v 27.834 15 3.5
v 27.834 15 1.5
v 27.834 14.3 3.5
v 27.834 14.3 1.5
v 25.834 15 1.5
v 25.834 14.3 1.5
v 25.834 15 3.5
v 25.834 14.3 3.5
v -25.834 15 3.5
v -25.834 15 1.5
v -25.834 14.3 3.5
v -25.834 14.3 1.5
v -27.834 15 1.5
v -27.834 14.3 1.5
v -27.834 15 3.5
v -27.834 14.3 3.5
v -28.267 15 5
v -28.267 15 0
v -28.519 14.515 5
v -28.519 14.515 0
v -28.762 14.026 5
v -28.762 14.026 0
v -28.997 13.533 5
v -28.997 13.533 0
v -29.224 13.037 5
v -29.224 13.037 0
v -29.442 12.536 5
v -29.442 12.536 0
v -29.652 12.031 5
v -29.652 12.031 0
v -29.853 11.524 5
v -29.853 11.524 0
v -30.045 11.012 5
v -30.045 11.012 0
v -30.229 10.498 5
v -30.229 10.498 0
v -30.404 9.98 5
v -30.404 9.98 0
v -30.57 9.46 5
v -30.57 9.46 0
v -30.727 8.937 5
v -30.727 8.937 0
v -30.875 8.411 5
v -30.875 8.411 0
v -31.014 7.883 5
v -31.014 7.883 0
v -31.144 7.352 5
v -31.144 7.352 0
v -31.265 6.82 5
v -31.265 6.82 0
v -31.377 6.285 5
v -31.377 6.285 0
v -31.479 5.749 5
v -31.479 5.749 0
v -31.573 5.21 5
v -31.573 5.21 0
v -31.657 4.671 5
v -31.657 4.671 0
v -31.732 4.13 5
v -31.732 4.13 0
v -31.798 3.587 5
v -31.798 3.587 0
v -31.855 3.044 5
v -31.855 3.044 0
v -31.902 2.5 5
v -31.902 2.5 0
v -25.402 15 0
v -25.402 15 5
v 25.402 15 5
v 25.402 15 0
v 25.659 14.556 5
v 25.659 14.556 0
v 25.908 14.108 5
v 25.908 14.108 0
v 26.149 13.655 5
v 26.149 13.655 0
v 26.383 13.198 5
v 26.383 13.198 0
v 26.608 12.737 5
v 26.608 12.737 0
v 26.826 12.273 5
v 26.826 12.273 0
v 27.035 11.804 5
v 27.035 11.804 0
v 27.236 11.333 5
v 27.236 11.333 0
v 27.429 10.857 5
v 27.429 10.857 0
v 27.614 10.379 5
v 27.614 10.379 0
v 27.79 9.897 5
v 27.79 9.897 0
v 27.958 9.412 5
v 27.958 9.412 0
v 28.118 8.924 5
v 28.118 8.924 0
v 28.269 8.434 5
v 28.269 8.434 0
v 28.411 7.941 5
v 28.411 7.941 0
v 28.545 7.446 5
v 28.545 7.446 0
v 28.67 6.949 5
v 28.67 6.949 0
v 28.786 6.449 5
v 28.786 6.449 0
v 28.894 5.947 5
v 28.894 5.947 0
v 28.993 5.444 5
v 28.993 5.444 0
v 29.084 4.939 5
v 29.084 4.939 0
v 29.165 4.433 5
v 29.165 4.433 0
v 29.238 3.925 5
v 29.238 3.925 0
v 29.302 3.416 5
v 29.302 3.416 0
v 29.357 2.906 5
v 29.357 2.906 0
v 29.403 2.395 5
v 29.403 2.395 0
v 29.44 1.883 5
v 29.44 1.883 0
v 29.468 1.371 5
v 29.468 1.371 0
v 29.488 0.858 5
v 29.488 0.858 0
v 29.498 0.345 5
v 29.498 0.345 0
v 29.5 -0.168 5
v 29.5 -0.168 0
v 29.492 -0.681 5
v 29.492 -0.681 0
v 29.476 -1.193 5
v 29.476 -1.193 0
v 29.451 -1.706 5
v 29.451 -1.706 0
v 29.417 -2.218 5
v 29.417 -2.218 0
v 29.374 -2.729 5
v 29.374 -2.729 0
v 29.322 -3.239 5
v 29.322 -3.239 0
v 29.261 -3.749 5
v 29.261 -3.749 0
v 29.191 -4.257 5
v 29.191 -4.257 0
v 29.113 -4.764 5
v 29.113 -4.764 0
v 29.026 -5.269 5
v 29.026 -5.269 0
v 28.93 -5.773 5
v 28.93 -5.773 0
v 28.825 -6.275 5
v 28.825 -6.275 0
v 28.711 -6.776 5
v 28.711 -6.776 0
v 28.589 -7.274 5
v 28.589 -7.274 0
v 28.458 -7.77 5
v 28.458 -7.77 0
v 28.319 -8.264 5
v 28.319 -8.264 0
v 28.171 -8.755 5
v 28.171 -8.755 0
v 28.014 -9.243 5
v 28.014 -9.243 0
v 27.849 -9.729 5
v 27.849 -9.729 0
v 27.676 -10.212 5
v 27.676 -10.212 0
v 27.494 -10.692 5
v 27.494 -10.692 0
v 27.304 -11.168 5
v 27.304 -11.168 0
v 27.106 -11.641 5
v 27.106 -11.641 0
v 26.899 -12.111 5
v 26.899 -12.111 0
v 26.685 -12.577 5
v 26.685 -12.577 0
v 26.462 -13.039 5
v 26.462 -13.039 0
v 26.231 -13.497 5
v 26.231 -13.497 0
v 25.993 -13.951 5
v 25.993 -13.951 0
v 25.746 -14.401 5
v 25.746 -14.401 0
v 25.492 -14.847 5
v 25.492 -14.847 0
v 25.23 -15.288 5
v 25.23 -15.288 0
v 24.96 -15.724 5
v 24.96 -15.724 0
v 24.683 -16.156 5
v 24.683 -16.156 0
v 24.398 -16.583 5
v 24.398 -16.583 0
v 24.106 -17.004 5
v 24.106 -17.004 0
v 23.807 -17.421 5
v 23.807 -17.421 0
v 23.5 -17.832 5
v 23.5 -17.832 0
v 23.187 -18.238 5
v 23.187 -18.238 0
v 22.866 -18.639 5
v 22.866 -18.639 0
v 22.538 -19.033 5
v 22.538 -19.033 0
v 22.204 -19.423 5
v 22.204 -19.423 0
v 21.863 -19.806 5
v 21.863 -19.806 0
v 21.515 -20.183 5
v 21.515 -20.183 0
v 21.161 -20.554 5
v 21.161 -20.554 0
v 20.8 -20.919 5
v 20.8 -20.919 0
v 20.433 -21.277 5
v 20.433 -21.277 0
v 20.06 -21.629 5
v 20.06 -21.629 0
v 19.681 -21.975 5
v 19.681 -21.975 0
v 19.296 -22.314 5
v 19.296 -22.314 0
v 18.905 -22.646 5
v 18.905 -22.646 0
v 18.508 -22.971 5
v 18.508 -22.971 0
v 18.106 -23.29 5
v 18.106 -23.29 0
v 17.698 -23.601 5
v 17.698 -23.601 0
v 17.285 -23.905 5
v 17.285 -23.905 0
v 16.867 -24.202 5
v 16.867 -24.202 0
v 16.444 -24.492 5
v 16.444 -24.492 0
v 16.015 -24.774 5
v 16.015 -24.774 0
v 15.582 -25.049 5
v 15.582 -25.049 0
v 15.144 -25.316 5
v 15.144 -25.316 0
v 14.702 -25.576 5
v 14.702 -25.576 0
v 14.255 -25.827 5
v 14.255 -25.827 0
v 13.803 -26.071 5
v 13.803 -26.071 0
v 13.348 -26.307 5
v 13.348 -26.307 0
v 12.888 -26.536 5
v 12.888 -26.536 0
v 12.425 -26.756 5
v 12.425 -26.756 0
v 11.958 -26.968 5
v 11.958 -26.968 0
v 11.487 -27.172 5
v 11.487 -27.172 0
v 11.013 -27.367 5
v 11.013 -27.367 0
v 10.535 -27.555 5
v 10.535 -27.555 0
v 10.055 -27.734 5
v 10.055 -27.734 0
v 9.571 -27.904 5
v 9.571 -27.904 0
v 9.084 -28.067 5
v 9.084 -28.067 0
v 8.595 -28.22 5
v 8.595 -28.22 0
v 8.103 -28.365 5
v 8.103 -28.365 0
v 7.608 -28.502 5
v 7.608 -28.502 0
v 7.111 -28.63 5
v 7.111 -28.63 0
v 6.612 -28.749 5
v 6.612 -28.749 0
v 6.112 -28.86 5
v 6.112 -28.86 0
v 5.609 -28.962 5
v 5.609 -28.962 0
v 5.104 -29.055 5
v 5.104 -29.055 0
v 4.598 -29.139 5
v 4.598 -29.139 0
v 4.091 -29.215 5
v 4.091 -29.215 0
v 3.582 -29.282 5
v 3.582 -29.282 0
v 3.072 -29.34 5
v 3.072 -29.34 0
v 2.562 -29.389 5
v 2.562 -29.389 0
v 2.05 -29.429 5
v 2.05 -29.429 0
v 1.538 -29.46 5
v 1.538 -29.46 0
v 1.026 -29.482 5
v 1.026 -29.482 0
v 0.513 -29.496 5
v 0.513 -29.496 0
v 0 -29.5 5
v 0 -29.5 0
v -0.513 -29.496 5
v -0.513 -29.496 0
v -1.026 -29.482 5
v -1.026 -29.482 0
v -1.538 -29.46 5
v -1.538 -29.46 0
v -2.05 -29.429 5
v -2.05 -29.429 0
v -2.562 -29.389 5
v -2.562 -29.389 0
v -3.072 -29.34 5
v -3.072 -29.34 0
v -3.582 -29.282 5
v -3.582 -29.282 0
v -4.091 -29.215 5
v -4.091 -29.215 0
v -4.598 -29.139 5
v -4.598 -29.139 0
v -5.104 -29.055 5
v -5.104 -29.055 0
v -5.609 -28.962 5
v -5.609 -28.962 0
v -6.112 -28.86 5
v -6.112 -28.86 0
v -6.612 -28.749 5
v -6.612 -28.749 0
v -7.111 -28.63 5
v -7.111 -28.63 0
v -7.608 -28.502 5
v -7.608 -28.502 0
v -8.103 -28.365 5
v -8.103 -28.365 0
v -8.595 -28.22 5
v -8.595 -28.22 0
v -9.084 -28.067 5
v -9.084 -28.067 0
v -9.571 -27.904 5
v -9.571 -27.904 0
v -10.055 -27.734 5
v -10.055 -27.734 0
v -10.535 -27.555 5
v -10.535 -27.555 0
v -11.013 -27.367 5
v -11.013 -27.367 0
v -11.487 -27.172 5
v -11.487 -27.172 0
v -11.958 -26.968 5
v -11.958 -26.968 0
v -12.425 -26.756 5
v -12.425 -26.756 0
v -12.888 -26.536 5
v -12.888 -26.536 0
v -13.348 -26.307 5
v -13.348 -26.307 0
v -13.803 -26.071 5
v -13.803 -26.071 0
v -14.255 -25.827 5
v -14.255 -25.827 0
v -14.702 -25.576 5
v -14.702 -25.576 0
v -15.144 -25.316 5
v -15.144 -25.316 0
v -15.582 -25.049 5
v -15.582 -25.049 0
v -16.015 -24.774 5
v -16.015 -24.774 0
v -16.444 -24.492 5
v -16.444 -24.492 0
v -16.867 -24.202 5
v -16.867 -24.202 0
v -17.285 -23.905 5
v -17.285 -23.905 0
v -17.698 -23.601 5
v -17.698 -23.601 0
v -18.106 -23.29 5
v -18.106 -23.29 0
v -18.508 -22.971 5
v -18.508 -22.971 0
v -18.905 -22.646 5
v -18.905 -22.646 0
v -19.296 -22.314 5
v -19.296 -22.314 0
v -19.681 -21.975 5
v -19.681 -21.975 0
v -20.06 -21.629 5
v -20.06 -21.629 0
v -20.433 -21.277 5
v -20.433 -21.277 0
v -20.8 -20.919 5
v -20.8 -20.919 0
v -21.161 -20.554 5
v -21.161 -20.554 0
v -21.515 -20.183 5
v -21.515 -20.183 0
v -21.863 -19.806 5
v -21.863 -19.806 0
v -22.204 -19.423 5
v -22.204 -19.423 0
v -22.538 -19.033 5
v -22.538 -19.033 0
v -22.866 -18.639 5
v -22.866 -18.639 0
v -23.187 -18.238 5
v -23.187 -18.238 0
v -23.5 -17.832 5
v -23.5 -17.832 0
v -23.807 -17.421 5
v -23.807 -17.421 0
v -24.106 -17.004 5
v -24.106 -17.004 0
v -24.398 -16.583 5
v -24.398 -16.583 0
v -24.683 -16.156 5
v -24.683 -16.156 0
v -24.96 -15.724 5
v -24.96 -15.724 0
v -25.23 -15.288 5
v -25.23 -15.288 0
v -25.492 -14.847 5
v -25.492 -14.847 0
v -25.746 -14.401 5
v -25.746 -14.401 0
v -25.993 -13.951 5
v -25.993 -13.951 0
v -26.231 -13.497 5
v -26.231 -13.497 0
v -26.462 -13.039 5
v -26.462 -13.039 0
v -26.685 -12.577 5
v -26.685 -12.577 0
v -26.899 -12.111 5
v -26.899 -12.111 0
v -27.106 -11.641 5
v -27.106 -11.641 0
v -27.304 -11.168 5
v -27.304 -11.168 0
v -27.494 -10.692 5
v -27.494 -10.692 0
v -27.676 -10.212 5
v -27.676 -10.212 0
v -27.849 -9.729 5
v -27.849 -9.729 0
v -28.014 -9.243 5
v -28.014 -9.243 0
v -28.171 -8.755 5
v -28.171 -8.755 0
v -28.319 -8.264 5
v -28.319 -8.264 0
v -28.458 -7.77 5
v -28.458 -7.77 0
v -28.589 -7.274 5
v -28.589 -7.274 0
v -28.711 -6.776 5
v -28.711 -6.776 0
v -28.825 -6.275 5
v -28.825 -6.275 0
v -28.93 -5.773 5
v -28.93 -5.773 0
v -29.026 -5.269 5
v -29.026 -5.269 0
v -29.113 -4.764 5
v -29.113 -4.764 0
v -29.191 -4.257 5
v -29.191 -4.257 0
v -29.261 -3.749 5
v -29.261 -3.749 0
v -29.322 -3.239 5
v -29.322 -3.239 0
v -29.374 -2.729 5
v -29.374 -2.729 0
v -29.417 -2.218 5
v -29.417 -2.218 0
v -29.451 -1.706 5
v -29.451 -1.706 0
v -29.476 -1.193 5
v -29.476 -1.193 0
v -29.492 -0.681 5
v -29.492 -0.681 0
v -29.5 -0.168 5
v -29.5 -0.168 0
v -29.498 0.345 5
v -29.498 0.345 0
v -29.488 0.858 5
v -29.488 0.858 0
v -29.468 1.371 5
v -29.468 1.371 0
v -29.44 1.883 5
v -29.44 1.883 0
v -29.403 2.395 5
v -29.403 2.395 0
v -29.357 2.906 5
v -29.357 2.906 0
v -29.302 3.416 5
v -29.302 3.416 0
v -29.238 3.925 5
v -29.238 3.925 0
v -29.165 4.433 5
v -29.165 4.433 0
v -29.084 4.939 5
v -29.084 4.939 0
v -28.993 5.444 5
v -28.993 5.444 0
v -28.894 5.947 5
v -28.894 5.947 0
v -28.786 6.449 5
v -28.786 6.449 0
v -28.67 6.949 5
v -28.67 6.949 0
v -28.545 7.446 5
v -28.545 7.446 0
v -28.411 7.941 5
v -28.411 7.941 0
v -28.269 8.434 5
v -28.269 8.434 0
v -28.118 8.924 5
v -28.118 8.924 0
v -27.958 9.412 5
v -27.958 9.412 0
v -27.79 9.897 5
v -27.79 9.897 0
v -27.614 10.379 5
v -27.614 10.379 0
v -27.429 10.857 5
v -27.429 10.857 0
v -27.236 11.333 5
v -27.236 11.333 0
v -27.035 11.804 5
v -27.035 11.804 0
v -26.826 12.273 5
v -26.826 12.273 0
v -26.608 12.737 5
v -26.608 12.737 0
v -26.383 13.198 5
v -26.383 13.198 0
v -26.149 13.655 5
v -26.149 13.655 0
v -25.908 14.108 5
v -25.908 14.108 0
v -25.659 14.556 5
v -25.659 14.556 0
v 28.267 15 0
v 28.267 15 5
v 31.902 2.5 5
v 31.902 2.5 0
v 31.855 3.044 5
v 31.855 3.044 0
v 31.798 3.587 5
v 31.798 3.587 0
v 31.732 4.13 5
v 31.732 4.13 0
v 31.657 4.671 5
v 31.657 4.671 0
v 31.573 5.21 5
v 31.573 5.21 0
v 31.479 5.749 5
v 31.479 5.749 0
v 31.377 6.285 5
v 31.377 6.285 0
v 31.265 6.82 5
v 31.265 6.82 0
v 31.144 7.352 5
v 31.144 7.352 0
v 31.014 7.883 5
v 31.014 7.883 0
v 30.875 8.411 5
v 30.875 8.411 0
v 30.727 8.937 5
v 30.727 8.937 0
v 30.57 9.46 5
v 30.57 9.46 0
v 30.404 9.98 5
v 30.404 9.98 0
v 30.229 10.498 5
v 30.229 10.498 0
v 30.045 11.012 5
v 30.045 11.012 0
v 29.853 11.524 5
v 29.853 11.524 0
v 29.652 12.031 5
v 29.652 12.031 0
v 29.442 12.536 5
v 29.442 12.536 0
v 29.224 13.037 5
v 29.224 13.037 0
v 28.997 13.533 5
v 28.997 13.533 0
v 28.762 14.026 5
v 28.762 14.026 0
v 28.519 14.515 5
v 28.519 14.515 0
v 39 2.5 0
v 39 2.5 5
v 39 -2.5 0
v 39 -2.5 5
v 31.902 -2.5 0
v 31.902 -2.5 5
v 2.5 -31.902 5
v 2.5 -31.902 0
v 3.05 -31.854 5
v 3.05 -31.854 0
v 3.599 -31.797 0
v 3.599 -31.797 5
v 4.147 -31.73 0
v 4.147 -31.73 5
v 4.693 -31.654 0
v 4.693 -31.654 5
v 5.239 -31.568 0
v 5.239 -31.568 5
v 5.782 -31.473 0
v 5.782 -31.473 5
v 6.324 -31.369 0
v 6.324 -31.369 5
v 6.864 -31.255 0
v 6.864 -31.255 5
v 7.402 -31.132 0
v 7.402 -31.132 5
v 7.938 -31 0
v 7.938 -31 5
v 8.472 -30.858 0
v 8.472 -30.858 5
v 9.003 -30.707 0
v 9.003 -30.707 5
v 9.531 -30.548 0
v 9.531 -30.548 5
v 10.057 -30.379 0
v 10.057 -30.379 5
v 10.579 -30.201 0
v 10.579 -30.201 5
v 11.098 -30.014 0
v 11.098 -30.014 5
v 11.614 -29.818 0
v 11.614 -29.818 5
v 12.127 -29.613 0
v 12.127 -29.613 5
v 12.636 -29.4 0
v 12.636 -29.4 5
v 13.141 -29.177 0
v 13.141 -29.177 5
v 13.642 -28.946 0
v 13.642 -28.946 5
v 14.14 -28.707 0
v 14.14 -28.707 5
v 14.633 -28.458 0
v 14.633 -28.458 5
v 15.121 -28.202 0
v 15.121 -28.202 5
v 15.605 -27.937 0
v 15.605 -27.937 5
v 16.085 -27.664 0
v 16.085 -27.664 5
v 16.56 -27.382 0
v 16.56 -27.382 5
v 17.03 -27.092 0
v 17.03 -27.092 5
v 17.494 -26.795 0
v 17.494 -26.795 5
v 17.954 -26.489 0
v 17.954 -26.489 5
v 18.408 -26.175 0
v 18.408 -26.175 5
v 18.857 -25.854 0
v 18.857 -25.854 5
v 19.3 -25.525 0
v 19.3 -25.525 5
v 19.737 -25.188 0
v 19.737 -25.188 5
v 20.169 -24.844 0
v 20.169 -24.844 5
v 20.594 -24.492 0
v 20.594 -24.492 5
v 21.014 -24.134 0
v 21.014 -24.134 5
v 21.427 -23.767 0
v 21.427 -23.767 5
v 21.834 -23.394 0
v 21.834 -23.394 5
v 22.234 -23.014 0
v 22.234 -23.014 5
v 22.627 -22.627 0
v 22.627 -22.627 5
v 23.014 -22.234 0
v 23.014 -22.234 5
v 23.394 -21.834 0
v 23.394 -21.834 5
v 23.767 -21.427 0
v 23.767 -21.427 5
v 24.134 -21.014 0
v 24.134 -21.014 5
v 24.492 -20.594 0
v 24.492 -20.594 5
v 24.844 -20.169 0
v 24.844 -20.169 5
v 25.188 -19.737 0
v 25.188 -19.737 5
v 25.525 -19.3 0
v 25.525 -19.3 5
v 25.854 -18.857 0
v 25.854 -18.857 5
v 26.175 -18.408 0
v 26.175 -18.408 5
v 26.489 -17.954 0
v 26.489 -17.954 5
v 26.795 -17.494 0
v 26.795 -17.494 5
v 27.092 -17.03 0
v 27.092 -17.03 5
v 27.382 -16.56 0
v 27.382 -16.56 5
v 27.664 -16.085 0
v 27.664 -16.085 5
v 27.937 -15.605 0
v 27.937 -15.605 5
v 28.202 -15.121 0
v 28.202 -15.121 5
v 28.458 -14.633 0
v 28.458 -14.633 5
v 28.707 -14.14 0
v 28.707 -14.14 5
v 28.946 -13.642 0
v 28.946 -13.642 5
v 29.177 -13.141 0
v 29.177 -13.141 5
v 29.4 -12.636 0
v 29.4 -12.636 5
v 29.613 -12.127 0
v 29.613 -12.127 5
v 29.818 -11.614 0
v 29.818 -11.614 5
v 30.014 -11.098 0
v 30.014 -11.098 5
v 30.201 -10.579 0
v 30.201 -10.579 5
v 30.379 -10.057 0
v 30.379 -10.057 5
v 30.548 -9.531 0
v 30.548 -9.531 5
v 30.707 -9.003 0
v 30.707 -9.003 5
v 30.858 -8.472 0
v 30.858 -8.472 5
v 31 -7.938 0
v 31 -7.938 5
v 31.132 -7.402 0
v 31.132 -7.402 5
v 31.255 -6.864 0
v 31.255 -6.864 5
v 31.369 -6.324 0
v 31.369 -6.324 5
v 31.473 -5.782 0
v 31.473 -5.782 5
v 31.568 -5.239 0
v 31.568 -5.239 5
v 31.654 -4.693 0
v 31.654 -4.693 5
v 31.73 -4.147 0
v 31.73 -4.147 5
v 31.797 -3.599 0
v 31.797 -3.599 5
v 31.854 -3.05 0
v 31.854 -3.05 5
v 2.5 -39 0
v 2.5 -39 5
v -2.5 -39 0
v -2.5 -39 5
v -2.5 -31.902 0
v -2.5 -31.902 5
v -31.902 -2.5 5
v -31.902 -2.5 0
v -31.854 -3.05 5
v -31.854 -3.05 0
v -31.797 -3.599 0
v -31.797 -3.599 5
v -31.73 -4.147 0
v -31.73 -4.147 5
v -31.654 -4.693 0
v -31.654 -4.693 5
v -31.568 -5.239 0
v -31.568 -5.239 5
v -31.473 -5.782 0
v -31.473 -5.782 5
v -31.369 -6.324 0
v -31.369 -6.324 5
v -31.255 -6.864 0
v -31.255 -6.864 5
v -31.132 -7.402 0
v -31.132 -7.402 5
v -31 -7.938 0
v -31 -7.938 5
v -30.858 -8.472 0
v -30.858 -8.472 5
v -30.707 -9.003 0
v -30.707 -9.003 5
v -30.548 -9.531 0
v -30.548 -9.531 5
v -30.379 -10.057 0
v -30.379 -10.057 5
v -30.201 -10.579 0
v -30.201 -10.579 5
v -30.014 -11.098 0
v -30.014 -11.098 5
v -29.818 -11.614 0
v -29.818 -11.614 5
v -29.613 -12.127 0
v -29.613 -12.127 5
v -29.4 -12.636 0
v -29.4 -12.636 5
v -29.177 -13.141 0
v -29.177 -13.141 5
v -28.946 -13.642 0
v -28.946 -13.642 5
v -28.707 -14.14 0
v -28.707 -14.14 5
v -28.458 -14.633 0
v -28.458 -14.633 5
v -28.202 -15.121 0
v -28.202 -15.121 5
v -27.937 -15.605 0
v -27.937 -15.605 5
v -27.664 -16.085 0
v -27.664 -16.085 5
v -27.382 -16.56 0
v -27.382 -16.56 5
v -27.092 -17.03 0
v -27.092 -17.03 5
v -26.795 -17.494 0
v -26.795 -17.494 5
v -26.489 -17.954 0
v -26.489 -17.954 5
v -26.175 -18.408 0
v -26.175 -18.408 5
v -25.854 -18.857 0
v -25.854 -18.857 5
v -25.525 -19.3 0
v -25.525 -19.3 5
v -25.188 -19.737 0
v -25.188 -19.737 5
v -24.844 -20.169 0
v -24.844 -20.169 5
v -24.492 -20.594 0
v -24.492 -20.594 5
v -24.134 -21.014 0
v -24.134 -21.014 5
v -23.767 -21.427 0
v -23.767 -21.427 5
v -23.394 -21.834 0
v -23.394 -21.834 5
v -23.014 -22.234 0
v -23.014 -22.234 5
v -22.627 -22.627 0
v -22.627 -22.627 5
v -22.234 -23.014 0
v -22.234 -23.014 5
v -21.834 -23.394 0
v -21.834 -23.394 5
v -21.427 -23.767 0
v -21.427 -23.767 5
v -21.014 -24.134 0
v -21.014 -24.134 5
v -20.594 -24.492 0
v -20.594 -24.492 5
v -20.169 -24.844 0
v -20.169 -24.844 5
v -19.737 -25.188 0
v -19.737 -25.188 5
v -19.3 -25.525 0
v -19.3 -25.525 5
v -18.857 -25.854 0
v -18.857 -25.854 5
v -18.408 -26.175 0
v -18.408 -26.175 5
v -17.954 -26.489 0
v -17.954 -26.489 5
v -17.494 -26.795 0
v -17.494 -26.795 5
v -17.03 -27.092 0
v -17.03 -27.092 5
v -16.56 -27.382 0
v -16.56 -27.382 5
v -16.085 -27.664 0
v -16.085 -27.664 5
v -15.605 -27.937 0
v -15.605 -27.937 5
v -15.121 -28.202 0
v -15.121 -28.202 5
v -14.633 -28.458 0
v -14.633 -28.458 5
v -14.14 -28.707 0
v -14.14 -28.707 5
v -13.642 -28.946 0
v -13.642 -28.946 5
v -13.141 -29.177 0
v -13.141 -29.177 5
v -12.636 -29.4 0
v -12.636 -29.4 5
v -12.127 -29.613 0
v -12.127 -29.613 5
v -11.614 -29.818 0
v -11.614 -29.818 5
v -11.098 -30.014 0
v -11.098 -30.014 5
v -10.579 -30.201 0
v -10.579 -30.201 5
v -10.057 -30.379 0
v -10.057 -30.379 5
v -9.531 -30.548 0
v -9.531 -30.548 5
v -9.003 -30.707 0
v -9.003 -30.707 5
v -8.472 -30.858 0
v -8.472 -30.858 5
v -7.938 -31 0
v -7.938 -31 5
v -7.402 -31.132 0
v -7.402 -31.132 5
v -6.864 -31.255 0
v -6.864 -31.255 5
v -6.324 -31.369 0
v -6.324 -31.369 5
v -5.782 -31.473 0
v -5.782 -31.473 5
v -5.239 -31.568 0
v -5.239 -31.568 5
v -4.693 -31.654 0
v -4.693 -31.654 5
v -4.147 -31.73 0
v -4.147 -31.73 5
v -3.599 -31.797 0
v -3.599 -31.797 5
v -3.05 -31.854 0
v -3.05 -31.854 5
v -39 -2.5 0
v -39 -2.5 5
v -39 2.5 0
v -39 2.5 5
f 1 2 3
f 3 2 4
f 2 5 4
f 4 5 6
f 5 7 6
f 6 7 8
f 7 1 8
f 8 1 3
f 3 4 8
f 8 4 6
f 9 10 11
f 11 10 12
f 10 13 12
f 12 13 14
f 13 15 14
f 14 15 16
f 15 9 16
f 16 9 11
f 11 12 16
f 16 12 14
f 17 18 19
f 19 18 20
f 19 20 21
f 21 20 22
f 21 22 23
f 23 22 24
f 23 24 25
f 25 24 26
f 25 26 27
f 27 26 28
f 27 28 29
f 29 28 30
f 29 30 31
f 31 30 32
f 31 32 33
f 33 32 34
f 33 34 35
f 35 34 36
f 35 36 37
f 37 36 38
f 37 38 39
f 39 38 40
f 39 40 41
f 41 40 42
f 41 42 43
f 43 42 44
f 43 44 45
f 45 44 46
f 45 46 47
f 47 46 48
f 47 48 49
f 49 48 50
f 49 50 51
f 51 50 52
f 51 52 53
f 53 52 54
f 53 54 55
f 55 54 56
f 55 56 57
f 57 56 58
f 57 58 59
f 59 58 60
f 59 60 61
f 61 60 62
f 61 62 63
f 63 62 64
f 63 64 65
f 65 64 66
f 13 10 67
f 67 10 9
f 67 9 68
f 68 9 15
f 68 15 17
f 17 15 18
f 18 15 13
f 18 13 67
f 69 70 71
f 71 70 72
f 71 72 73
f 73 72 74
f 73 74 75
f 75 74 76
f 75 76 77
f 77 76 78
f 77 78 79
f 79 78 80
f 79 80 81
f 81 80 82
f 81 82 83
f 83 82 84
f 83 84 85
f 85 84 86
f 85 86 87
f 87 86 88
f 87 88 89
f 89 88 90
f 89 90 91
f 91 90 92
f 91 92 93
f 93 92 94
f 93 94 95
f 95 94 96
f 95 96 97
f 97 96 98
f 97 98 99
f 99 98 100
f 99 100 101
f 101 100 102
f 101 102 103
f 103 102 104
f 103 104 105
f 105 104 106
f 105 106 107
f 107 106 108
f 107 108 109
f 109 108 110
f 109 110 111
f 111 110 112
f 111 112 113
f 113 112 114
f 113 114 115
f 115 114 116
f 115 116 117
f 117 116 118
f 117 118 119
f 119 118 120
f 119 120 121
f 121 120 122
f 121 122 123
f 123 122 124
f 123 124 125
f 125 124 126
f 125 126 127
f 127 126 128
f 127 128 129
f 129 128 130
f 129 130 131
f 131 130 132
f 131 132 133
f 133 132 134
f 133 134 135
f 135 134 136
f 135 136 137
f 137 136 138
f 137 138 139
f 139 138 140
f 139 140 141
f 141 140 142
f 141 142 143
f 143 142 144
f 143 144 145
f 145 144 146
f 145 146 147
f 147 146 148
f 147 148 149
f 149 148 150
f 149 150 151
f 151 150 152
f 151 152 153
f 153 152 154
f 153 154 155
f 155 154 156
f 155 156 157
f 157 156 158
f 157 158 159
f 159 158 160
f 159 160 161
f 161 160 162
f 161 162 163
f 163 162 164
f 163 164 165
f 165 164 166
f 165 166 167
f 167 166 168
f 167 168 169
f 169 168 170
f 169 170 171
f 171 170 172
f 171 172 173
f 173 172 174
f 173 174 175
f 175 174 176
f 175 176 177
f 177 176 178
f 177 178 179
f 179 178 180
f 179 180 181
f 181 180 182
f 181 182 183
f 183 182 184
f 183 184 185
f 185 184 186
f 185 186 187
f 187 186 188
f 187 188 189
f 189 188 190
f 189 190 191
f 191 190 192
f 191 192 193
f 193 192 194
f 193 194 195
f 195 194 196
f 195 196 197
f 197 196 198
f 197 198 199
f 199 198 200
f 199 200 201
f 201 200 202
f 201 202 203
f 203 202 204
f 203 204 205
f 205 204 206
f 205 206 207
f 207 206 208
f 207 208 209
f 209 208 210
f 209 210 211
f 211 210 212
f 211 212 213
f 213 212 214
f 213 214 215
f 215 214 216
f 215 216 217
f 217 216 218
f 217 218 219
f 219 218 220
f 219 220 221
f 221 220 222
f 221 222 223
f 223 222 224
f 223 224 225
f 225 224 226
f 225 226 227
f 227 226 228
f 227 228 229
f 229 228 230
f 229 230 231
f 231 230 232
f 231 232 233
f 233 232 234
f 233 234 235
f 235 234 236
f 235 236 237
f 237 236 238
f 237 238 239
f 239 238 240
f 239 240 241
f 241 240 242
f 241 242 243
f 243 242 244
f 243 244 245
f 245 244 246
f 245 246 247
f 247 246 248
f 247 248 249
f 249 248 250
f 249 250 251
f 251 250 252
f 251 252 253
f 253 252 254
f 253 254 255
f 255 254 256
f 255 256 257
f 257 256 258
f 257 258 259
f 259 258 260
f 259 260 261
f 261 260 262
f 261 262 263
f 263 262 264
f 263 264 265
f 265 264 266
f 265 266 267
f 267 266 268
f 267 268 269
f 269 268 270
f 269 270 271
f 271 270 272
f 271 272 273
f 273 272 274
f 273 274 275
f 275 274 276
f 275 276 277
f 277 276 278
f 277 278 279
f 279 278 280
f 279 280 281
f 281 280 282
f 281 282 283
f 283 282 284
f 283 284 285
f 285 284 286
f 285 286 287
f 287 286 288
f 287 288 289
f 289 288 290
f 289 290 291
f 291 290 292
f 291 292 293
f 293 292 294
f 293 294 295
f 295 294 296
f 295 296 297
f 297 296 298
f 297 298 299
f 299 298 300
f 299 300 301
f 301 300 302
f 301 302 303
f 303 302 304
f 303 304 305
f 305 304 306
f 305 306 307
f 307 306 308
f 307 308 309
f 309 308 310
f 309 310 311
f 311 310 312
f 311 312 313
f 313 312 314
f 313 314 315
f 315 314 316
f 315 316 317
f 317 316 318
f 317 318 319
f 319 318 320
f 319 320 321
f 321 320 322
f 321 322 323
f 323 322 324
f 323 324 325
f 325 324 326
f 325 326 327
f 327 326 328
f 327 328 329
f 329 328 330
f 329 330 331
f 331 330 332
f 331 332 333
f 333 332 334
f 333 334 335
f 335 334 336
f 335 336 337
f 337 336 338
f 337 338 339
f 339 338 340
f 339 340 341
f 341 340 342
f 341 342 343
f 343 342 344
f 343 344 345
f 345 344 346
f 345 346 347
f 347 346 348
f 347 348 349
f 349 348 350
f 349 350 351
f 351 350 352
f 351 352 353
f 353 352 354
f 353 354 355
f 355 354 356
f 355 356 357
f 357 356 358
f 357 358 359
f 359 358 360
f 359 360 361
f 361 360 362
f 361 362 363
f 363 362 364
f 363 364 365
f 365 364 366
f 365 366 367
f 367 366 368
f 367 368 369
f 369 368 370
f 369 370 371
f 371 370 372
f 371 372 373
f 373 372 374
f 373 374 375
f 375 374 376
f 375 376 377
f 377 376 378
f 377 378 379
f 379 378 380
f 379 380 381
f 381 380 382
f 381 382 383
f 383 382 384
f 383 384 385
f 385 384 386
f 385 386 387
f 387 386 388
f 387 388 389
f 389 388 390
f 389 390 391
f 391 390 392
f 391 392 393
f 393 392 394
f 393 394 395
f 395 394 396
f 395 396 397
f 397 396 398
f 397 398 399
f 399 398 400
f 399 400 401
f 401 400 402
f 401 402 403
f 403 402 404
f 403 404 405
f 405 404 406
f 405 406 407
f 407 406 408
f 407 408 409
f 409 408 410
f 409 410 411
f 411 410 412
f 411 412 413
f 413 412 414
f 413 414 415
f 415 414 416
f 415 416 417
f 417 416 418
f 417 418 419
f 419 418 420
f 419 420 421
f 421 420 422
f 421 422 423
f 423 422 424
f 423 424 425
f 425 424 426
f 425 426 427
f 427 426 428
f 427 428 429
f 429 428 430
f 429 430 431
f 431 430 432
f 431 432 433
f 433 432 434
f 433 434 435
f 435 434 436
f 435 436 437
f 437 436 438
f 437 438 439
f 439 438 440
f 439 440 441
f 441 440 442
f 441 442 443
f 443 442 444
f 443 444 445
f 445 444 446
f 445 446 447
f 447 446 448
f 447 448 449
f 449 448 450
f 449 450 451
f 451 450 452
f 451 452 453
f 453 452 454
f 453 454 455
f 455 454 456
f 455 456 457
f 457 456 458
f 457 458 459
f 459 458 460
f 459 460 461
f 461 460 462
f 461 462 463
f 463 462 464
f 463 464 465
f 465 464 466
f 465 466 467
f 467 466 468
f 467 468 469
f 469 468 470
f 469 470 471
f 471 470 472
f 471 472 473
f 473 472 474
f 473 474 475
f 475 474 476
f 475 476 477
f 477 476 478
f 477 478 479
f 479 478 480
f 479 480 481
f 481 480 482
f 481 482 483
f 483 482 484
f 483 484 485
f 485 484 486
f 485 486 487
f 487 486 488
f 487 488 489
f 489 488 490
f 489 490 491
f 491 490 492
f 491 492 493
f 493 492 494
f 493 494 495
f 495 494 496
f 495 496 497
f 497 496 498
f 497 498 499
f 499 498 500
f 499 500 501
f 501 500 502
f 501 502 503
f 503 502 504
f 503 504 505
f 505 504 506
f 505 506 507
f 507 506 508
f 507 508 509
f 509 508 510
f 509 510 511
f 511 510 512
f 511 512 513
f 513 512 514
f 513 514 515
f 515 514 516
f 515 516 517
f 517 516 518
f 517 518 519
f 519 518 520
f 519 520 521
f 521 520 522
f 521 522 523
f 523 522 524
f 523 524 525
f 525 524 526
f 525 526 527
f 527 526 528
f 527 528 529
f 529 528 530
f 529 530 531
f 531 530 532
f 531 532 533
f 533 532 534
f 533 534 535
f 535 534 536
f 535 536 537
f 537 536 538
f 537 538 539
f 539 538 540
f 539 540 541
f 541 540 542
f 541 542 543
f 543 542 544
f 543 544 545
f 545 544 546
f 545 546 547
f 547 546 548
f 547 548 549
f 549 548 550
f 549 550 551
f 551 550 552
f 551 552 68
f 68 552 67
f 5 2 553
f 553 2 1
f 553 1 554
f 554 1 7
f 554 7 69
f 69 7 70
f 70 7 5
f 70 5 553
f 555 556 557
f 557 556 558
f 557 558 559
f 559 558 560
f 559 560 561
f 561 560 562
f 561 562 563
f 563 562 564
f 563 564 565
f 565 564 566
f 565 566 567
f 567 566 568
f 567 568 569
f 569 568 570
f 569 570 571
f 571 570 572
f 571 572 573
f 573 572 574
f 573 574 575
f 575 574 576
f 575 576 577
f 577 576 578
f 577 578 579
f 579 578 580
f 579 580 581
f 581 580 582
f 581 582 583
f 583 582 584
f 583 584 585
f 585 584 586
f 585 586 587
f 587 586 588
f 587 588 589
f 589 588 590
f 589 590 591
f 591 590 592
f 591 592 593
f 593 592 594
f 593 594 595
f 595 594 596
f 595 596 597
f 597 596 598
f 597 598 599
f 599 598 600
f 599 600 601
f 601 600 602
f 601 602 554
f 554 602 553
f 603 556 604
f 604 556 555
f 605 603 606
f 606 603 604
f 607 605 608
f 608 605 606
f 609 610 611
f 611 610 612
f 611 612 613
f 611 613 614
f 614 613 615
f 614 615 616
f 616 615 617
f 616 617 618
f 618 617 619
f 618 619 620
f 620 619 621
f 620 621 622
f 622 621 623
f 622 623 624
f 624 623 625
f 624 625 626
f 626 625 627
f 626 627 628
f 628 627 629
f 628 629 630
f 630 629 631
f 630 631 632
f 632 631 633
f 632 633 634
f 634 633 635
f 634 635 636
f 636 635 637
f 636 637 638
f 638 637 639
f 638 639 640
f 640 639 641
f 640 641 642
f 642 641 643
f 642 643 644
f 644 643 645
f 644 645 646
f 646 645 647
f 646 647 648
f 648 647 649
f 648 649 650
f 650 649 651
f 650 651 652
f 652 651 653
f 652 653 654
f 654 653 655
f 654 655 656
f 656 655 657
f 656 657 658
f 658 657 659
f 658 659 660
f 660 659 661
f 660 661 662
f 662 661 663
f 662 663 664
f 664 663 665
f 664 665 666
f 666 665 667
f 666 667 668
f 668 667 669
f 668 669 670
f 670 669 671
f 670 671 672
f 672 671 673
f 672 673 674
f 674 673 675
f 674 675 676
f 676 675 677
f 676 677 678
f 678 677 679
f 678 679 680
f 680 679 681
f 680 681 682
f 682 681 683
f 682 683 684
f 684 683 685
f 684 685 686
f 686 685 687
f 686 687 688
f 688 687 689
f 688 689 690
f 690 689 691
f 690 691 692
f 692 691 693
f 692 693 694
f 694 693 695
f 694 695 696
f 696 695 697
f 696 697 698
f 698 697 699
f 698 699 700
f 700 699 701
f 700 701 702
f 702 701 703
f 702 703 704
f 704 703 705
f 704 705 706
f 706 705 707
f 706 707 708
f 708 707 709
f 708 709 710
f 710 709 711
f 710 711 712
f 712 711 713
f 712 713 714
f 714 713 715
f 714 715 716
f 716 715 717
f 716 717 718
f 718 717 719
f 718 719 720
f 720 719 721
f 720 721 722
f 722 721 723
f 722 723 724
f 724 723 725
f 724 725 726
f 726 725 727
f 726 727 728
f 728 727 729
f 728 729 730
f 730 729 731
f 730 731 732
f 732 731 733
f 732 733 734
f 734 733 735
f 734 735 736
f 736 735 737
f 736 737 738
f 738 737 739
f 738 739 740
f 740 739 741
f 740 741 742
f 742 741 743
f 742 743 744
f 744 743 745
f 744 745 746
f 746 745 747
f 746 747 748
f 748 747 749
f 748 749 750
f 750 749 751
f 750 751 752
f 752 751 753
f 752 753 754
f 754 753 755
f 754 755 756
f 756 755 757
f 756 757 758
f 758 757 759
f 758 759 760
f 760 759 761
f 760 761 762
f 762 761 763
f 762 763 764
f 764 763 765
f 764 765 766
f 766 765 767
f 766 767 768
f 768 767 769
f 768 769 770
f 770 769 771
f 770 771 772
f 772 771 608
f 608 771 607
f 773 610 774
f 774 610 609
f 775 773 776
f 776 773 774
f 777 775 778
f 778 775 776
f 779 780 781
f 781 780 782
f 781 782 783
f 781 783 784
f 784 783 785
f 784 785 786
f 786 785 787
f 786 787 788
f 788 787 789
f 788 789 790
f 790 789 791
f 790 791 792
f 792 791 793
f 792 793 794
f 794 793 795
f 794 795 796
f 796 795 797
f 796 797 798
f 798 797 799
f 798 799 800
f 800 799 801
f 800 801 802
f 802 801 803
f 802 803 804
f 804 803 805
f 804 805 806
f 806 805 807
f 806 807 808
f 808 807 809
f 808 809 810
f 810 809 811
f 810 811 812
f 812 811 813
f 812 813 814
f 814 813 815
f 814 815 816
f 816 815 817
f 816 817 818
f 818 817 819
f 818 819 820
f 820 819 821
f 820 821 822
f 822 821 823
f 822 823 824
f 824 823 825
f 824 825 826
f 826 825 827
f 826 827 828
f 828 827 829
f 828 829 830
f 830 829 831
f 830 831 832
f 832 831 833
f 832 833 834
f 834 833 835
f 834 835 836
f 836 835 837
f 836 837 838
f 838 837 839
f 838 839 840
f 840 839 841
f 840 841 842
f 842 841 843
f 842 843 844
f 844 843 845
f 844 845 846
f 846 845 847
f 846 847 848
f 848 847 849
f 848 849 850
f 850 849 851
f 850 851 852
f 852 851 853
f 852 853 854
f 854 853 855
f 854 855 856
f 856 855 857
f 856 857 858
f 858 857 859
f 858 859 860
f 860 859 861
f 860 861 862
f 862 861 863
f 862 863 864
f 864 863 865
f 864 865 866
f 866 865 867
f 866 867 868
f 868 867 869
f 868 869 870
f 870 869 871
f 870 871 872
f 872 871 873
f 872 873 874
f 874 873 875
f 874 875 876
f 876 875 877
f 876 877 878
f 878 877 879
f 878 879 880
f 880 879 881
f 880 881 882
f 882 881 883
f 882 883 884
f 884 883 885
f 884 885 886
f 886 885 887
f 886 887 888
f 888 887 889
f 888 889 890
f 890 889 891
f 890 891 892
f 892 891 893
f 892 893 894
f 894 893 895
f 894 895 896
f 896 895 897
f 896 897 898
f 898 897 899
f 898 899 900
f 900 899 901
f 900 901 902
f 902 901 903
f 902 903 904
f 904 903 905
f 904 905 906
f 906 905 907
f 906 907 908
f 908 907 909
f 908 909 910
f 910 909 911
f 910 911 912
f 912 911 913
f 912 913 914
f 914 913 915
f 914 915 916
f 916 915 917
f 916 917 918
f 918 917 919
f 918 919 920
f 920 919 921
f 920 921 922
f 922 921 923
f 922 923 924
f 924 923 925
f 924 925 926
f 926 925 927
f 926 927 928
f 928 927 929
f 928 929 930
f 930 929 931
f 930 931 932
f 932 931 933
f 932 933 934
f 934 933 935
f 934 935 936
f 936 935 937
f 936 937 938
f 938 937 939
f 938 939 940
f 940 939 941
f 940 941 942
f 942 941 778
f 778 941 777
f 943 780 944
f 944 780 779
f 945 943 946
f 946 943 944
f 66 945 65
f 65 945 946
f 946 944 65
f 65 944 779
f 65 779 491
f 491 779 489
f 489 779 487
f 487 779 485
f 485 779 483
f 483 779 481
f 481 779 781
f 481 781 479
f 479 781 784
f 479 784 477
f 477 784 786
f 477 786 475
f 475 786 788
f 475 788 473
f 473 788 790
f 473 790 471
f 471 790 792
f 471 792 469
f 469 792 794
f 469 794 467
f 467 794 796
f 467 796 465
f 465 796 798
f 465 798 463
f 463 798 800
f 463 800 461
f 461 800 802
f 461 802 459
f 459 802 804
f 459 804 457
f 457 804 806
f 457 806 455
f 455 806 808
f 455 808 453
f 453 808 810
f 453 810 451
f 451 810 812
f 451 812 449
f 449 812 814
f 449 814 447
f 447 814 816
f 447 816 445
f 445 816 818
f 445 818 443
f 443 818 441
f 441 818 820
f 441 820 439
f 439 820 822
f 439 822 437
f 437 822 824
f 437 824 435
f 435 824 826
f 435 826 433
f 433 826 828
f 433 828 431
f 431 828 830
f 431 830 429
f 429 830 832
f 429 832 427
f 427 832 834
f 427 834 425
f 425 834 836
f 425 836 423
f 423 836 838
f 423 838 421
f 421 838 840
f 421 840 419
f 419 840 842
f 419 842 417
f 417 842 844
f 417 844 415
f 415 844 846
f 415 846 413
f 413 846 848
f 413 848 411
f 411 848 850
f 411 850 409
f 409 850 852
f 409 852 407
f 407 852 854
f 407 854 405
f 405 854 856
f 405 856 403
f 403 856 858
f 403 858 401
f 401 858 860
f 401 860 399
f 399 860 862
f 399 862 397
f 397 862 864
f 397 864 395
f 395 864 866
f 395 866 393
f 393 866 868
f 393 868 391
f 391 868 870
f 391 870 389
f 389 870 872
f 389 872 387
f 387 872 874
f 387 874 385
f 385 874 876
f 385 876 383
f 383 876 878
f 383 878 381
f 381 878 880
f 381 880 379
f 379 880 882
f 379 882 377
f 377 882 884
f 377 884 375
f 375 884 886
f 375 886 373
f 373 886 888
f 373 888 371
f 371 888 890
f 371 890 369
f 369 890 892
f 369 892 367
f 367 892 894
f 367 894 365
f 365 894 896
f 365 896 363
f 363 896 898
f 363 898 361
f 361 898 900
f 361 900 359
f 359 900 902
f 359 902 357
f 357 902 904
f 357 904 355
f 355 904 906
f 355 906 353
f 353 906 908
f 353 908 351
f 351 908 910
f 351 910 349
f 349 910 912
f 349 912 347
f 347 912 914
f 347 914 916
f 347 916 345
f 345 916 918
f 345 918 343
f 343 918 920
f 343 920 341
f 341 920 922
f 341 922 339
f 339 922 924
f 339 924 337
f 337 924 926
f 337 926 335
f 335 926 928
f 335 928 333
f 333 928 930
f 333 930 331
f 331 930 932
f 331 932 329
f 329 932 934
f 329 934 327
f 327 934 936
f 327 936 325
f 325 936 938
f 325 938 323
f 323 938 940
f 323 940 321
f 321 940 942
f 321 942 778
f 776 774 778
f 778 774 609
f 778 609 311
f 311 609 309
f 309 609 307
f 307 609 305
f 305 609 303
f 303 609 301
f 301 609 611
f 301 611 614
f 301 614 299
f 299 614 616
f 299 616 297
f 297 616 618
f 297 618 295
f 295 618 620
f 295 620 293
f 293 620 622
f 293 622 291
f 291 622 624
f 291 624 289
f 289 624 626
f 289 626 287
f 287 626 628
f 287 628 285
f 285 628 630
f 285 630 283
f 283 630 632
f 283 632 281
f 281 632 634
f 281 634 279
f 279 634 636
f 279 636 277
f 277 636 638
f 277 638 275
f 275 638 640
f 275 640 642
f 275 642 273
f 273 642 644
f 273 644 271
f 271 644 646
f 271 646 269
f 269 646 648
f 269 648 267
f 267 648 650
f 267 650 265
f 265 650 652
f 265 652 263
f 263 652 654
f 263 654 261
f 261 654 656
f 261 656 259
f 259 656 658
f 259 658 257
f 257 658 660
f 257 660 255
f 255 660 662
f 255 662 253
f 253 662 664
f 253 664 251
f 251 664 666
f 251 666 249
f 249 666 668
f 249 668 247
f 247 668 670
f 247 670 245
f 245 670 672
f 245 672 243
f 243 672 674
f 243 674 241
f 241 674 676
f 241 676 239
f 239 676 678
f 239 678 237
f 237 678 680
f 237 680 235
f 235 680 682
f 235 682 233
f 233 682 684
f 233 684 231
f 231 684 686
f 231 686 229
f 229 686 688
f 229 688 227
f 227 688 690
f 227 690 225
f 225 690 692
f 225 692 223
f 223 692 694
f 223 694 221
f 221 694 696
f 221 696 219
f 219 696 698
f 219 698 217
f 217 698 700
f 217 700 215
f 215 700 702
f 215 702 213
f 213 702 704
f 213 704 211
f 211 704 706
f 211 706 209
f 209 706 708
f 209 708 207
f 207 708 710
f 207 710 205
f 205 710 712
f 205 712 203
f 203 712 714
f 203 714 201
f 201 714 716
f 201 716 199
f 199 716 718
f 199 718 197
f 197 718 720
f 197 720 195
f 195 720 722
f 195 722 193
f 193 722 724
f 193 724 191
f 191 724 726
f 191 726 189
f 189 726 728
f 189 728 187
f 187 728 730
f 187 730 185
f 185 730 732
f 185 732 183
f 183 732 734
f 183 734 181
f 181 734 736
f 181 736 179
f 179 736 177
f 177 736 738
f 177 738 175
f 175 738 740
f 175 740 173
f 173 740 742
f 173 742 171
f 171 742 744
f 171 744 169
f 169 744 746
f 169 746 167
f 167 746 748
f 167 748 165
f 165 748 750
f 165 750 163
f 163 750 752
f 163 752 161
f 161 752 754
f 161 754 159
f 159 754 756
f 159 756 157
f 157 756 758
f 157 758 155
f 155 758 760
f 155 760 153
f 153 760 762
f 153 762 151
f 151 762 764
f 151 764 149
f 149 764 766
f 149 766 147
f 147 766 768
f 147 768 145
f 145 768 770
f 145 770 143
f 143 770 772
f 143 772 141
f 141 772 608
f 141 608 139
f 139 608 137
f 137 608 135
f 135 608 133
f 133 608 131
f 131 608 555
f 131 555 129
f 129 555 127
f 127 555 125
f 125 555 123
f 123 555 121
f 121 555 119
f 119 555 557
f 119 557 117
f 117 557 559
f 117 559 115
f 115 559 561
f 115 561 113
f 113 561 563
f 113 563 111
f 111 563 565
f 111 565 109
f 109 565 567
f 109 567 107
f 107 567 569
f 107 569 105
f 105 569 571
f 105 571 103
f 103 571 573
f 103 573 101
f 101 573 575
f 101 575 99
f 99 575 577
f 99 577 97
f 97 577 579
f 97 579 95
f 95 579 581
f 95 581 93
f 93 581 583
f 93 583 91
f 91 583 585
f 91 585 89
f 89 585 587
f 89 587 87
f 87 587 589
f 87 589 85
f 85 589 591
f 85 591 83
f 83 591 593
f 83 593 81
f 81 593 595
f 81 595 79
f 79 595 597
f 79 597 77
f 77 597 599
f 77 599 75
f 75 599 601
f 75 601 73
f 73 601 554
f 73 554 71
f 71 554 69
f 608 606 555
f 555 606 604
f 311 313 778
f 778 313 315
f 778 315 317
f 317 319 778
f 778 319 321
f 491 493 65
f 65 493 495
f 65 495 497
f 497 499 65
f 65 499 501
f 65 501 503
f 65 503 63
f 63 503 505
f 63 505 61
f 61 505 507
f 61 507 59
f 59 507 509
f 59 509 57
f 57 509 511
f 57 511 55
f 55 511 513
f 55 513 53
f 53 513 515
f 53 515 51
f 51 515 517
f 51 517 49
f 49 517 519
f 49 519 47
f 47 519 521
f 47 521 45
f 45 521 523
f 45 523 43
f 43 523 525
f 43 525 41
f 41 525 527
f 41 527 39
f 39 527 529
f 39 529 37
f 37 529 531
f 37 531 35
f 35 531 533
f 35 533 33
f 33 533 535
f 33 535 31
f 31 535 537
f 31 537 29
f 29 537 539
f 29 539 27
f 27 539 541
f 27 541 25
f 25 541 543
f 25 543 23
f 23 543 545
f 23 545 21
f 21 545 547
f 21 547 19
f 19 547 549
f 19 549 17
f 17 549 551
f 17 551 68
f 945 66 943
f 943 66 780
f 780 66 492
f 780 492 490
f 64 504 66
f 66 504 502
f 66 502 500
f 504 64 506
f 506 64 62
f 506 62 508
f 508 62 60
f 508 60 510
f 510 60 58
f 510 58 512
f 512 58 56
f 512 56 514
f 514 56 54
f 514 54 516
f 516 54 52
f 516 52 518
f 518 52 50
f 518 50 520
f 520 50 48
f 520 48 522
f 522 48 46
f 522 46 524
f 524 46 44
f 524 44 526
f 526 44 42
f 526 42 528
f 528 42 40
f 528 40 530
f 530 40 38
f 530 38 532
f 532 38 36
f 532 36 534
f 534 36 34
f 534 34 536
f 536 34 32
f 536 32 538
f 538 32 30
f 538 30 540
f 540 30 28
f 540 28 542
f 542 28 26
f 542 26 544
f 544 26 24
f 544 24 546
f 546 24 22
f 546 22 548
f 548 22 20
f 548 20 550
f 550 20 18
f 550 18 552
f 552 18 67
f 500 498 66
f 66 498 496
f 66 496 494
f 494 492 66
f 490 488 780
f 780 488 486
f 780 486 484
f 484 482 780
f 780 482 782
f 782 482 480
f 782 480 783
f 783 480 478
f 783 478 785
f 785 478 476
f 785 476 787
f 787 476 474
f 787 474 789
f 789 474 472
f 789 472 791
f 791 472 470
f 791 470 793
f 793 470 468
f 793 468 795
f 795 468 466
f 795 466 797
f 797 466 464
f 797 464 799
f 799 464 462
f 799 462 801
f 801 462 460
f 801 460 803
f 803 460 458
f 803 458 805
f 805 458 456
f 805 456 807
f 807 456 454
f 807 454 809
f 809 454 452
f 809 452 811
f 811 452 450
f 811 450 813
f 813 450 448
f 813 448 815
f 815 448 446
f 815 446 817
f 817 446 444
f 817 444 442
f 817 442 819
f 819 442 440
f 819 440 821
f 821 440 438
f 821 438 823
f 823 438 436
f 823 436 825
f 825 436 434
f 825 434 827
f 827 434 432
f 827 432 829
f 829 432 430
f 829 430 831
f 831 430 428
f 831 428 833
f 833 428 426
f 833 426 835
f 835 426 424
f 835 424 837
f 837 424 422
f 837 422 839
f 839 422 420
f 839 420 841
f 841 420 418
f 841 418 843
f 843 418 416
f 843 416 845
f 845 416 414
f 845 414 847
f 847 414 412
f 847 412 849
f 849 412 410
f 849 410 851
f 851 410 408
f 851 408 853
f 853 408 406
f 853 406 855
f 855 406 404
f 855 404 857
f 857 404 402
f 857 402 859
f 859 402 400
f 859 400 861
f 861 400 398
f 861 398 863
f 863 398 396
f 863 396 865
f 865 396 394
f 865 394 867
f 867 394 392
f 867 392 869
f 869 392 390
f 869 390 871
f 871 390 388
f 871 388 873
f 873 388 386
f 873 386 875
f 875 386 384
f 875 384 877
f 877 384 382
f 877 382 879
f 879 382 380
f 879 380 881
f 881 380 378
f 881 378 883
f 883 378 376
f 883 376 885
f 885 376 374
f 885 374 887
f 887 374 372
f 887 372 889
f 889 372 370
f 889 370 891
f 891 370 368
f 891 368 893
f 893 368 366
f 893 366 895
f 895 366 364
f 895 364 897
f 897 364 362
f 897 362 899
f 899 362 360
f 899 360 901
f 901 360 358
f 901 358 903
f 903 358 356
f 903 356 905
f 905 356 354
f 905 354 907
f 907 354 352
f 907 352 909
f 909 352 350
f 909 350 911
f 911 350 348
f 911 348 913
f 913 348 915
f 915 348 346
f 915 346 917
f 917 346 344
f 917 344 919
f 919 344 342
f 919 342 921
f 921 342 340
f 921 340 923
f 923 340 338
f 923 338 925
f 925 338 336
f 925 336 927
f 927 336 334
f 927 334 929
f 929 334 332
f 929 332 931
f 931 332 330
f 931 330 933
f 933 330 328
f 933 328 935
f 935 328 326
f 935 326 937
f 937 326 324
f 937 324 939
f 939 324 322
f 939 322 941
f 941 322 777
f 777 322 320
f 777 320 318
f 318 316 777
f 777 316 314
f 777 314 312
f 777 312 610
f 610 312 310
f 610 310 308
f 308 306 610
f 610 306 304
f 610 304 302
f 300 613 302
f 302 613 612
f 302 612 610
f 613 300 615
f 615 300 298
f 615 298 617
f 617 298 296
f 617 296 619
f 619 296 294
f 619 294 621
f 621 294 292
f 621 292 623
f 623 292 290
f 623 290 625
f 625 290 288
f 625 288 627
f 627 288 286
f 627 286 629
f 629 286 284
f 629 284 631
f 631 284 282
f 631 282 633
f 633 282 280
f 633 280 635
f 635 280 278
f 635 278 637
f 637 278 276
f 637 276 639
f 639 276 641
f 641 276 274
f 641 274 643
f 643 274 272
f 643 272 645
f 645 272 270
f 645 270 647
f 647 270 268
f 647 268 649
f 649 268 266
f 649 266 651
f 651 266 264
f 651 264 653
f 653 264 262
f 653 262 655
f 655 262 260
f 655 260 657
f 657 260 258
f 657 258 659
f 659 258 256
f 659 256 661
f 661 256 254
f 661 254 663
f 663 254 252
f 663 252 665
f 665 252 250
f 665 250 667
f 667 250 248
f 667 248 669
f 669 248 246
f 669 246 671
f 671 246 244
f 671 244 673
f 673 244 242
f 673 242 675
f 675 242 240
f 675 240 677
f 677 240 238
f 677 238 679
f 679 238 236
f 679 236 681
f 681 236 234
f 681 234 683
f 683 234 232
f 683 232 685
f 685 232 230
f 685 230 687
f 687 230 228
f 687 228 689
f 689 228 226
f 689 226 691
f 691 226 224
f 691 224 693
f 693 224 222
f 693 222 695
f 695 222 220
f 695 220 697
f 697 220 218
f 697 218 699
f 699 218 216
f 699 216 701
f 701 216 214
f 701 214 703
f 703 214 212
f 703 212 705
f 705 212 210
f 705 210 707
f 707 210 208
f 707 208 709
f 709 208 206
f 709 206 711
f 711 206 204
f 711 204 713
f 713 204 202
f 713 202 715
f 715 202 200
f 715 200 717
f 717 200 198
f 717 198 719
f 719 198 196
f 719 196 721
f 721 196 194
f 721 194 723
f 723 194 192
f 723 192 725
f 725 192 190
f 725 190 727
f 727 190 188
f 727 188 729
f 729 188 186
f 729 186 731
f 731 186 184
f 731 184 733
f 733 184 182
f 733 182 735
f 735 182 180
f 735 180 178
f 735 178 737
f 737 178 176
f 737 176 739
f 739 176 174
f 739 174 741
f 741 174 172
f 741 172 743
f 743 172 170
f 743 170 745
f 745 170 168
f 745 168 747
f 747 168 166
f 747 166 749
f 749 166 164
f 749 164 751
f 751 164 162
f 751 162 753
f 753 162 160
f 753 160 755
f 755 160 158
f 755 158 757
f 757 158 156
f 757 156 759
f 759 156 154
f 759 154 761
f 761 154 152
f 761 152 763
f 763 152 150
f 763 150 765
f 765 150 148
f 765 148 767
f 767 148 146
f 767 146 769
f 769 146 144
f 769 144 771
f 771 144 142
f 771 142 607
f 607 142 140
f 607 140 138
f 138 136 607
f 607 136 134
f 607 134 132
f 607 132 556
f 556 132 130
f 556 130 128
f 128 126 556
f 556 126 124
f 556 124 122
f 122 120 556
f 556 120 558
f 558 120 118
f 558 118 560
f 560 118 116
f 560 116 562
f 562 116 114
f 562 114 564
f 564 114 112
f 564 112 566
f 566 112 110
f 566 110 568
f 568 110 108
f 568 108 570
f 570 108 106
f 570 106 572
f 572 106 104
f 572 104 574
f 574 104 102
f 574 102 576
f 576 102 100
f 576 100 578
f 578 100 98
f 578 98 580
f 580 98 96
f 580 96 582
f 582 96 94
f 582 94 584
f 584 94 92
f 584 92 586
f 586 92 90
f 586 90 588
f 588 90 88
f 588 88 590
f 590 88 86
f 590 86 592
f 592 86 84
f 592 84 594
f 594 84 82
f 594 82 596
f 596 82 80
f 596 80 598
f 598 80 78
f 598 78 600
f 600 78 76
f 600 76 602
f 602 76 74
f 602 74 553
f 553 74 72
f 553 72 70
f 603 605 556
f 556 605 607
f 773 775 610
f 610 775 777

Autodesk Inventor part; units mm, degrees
ref_plane "YZ Plane" through (0, 0, 0) normal (1, 0, 0) x (0, 1, 0)
ref_plane "XZ Plane" through (0, 0, 0) normal (0, 1, 0) x (-1, 0, 0)
ref_plane "XY Plane" through (0, 0, 0) normal (0, 0, 1) x (1, 0, 0)
sketch "Sketch1" plane through (0, 0, 0) normal (0, 0, 1) x (1, 0, 0)
  arc A0 (-25.4018, 15) -> (25.4018, 15) centre (0, 0) ccw
  line L0 (-28.2666, 15) -> (-25.4018, 15)
  line L1 (25.4018, 15) -> (28.2666, 15)
  line L2 (-39, 2.5) -> (-32, 2.5)
  line L3 (-32, -2.5) -> (-39, -2.5)
  line L4 (-39, -2.5) -> (-39, 2.5)
  line L5 (-32, 2.5) -> (-31.9022, 2.5)
  line L6 (-32, -2.5) -> (-31.9022, -2.5)
  line L7 (2.5, -32) -> (2.5, -39)
  line L8 (2.5, -39) -> (-2.5, -39)
  line L9 (-2.5, -39) -> (-2.5, -32)
  line L10 (-2.5, -32) -> (-2.5, -31.9022)
  line L11 (2.5, -32) -> (2.5, -31.9022)
  line L12 (32, 2.5) -> (39, 2.5)
  line L13 (39, 2.5) -> (39, -2.5)
  line L14 (39, -2.5) -> (32, -2.5)
  line L15 (32, 2.5) -> (31.9022, 2.5)
  line L16 (32, -2.5) -> (31.9022, -2.5)
  arc A1 (-28.2666, 15) -> (-31.9022, 2.5) centre (0, 0) ccw
  arc A2 (-31.9022, -2.5) -> (-2.5, -31.9022) centre (0, 0) ccw
  arc A3 (2.5, -31.9022) -> (31.9022, -2.5) centre (0, 0) ccw
  arc A4 (31.9022, 2.5) -> (28.2666, 15) centre (0, 0) ccw
  dimension "d18" = 59
  dimension "d41" = 7
  dimension "d42" = 5
  dimension "d43" = 5
  dimension "d44" = 7
  dimension "d45" = 7
  dimension "d46" = 5
extrude "Extrusion2" add sketch "Sketch1" along normal blind 5
sketch "Sketch2" plane through (-28.2666, 15, 0) normal (0, 1, 0) x (1, 0, 0)
  line L0 (0.4325, -1.5) -> (2.4325, -1.5)
  line L1 (2.4325, -1.5) -> (2.4325, -3.5)
  line L2 (2.4325, -3.5) -> (0.4325, -3.5)
  line L3 (0.4325, -3.5) -> (0.4325, -1.5)
  point P0 (28.2666, 0)
  point P1 (1.4325, -2.5)
  dimension "d51" = 2
  dimension "d52" = 2
sketch "Sketch3" plane through (25.4018, 15, 0) normal (0, 1, 0) x (1, 0, 0)
  line L0 (0.4325, -1.5) -> (2.4325, -1.5)
  line L1 (2.4325, -1.5) -> (2.4325, -3.5)
  line L2 (2.4325, -3.5) -> (0.4325, -3.5)
  line L3 (0.4325, -3.5) -> (0.4325, -1.5)
  point P0 (-25.4018, 0)
  point P1 (1.4325, -2.5)
  dimension "d55" = 2
  dimension "d56" = 2
extrude "Extrusion3" cut sketch "Sketch2" against normal blind 0.7
extrude "Extrusion4" cut sketch "Sketch3" against normal blind 0.7
properties part number "Clip_TestFitV1"
